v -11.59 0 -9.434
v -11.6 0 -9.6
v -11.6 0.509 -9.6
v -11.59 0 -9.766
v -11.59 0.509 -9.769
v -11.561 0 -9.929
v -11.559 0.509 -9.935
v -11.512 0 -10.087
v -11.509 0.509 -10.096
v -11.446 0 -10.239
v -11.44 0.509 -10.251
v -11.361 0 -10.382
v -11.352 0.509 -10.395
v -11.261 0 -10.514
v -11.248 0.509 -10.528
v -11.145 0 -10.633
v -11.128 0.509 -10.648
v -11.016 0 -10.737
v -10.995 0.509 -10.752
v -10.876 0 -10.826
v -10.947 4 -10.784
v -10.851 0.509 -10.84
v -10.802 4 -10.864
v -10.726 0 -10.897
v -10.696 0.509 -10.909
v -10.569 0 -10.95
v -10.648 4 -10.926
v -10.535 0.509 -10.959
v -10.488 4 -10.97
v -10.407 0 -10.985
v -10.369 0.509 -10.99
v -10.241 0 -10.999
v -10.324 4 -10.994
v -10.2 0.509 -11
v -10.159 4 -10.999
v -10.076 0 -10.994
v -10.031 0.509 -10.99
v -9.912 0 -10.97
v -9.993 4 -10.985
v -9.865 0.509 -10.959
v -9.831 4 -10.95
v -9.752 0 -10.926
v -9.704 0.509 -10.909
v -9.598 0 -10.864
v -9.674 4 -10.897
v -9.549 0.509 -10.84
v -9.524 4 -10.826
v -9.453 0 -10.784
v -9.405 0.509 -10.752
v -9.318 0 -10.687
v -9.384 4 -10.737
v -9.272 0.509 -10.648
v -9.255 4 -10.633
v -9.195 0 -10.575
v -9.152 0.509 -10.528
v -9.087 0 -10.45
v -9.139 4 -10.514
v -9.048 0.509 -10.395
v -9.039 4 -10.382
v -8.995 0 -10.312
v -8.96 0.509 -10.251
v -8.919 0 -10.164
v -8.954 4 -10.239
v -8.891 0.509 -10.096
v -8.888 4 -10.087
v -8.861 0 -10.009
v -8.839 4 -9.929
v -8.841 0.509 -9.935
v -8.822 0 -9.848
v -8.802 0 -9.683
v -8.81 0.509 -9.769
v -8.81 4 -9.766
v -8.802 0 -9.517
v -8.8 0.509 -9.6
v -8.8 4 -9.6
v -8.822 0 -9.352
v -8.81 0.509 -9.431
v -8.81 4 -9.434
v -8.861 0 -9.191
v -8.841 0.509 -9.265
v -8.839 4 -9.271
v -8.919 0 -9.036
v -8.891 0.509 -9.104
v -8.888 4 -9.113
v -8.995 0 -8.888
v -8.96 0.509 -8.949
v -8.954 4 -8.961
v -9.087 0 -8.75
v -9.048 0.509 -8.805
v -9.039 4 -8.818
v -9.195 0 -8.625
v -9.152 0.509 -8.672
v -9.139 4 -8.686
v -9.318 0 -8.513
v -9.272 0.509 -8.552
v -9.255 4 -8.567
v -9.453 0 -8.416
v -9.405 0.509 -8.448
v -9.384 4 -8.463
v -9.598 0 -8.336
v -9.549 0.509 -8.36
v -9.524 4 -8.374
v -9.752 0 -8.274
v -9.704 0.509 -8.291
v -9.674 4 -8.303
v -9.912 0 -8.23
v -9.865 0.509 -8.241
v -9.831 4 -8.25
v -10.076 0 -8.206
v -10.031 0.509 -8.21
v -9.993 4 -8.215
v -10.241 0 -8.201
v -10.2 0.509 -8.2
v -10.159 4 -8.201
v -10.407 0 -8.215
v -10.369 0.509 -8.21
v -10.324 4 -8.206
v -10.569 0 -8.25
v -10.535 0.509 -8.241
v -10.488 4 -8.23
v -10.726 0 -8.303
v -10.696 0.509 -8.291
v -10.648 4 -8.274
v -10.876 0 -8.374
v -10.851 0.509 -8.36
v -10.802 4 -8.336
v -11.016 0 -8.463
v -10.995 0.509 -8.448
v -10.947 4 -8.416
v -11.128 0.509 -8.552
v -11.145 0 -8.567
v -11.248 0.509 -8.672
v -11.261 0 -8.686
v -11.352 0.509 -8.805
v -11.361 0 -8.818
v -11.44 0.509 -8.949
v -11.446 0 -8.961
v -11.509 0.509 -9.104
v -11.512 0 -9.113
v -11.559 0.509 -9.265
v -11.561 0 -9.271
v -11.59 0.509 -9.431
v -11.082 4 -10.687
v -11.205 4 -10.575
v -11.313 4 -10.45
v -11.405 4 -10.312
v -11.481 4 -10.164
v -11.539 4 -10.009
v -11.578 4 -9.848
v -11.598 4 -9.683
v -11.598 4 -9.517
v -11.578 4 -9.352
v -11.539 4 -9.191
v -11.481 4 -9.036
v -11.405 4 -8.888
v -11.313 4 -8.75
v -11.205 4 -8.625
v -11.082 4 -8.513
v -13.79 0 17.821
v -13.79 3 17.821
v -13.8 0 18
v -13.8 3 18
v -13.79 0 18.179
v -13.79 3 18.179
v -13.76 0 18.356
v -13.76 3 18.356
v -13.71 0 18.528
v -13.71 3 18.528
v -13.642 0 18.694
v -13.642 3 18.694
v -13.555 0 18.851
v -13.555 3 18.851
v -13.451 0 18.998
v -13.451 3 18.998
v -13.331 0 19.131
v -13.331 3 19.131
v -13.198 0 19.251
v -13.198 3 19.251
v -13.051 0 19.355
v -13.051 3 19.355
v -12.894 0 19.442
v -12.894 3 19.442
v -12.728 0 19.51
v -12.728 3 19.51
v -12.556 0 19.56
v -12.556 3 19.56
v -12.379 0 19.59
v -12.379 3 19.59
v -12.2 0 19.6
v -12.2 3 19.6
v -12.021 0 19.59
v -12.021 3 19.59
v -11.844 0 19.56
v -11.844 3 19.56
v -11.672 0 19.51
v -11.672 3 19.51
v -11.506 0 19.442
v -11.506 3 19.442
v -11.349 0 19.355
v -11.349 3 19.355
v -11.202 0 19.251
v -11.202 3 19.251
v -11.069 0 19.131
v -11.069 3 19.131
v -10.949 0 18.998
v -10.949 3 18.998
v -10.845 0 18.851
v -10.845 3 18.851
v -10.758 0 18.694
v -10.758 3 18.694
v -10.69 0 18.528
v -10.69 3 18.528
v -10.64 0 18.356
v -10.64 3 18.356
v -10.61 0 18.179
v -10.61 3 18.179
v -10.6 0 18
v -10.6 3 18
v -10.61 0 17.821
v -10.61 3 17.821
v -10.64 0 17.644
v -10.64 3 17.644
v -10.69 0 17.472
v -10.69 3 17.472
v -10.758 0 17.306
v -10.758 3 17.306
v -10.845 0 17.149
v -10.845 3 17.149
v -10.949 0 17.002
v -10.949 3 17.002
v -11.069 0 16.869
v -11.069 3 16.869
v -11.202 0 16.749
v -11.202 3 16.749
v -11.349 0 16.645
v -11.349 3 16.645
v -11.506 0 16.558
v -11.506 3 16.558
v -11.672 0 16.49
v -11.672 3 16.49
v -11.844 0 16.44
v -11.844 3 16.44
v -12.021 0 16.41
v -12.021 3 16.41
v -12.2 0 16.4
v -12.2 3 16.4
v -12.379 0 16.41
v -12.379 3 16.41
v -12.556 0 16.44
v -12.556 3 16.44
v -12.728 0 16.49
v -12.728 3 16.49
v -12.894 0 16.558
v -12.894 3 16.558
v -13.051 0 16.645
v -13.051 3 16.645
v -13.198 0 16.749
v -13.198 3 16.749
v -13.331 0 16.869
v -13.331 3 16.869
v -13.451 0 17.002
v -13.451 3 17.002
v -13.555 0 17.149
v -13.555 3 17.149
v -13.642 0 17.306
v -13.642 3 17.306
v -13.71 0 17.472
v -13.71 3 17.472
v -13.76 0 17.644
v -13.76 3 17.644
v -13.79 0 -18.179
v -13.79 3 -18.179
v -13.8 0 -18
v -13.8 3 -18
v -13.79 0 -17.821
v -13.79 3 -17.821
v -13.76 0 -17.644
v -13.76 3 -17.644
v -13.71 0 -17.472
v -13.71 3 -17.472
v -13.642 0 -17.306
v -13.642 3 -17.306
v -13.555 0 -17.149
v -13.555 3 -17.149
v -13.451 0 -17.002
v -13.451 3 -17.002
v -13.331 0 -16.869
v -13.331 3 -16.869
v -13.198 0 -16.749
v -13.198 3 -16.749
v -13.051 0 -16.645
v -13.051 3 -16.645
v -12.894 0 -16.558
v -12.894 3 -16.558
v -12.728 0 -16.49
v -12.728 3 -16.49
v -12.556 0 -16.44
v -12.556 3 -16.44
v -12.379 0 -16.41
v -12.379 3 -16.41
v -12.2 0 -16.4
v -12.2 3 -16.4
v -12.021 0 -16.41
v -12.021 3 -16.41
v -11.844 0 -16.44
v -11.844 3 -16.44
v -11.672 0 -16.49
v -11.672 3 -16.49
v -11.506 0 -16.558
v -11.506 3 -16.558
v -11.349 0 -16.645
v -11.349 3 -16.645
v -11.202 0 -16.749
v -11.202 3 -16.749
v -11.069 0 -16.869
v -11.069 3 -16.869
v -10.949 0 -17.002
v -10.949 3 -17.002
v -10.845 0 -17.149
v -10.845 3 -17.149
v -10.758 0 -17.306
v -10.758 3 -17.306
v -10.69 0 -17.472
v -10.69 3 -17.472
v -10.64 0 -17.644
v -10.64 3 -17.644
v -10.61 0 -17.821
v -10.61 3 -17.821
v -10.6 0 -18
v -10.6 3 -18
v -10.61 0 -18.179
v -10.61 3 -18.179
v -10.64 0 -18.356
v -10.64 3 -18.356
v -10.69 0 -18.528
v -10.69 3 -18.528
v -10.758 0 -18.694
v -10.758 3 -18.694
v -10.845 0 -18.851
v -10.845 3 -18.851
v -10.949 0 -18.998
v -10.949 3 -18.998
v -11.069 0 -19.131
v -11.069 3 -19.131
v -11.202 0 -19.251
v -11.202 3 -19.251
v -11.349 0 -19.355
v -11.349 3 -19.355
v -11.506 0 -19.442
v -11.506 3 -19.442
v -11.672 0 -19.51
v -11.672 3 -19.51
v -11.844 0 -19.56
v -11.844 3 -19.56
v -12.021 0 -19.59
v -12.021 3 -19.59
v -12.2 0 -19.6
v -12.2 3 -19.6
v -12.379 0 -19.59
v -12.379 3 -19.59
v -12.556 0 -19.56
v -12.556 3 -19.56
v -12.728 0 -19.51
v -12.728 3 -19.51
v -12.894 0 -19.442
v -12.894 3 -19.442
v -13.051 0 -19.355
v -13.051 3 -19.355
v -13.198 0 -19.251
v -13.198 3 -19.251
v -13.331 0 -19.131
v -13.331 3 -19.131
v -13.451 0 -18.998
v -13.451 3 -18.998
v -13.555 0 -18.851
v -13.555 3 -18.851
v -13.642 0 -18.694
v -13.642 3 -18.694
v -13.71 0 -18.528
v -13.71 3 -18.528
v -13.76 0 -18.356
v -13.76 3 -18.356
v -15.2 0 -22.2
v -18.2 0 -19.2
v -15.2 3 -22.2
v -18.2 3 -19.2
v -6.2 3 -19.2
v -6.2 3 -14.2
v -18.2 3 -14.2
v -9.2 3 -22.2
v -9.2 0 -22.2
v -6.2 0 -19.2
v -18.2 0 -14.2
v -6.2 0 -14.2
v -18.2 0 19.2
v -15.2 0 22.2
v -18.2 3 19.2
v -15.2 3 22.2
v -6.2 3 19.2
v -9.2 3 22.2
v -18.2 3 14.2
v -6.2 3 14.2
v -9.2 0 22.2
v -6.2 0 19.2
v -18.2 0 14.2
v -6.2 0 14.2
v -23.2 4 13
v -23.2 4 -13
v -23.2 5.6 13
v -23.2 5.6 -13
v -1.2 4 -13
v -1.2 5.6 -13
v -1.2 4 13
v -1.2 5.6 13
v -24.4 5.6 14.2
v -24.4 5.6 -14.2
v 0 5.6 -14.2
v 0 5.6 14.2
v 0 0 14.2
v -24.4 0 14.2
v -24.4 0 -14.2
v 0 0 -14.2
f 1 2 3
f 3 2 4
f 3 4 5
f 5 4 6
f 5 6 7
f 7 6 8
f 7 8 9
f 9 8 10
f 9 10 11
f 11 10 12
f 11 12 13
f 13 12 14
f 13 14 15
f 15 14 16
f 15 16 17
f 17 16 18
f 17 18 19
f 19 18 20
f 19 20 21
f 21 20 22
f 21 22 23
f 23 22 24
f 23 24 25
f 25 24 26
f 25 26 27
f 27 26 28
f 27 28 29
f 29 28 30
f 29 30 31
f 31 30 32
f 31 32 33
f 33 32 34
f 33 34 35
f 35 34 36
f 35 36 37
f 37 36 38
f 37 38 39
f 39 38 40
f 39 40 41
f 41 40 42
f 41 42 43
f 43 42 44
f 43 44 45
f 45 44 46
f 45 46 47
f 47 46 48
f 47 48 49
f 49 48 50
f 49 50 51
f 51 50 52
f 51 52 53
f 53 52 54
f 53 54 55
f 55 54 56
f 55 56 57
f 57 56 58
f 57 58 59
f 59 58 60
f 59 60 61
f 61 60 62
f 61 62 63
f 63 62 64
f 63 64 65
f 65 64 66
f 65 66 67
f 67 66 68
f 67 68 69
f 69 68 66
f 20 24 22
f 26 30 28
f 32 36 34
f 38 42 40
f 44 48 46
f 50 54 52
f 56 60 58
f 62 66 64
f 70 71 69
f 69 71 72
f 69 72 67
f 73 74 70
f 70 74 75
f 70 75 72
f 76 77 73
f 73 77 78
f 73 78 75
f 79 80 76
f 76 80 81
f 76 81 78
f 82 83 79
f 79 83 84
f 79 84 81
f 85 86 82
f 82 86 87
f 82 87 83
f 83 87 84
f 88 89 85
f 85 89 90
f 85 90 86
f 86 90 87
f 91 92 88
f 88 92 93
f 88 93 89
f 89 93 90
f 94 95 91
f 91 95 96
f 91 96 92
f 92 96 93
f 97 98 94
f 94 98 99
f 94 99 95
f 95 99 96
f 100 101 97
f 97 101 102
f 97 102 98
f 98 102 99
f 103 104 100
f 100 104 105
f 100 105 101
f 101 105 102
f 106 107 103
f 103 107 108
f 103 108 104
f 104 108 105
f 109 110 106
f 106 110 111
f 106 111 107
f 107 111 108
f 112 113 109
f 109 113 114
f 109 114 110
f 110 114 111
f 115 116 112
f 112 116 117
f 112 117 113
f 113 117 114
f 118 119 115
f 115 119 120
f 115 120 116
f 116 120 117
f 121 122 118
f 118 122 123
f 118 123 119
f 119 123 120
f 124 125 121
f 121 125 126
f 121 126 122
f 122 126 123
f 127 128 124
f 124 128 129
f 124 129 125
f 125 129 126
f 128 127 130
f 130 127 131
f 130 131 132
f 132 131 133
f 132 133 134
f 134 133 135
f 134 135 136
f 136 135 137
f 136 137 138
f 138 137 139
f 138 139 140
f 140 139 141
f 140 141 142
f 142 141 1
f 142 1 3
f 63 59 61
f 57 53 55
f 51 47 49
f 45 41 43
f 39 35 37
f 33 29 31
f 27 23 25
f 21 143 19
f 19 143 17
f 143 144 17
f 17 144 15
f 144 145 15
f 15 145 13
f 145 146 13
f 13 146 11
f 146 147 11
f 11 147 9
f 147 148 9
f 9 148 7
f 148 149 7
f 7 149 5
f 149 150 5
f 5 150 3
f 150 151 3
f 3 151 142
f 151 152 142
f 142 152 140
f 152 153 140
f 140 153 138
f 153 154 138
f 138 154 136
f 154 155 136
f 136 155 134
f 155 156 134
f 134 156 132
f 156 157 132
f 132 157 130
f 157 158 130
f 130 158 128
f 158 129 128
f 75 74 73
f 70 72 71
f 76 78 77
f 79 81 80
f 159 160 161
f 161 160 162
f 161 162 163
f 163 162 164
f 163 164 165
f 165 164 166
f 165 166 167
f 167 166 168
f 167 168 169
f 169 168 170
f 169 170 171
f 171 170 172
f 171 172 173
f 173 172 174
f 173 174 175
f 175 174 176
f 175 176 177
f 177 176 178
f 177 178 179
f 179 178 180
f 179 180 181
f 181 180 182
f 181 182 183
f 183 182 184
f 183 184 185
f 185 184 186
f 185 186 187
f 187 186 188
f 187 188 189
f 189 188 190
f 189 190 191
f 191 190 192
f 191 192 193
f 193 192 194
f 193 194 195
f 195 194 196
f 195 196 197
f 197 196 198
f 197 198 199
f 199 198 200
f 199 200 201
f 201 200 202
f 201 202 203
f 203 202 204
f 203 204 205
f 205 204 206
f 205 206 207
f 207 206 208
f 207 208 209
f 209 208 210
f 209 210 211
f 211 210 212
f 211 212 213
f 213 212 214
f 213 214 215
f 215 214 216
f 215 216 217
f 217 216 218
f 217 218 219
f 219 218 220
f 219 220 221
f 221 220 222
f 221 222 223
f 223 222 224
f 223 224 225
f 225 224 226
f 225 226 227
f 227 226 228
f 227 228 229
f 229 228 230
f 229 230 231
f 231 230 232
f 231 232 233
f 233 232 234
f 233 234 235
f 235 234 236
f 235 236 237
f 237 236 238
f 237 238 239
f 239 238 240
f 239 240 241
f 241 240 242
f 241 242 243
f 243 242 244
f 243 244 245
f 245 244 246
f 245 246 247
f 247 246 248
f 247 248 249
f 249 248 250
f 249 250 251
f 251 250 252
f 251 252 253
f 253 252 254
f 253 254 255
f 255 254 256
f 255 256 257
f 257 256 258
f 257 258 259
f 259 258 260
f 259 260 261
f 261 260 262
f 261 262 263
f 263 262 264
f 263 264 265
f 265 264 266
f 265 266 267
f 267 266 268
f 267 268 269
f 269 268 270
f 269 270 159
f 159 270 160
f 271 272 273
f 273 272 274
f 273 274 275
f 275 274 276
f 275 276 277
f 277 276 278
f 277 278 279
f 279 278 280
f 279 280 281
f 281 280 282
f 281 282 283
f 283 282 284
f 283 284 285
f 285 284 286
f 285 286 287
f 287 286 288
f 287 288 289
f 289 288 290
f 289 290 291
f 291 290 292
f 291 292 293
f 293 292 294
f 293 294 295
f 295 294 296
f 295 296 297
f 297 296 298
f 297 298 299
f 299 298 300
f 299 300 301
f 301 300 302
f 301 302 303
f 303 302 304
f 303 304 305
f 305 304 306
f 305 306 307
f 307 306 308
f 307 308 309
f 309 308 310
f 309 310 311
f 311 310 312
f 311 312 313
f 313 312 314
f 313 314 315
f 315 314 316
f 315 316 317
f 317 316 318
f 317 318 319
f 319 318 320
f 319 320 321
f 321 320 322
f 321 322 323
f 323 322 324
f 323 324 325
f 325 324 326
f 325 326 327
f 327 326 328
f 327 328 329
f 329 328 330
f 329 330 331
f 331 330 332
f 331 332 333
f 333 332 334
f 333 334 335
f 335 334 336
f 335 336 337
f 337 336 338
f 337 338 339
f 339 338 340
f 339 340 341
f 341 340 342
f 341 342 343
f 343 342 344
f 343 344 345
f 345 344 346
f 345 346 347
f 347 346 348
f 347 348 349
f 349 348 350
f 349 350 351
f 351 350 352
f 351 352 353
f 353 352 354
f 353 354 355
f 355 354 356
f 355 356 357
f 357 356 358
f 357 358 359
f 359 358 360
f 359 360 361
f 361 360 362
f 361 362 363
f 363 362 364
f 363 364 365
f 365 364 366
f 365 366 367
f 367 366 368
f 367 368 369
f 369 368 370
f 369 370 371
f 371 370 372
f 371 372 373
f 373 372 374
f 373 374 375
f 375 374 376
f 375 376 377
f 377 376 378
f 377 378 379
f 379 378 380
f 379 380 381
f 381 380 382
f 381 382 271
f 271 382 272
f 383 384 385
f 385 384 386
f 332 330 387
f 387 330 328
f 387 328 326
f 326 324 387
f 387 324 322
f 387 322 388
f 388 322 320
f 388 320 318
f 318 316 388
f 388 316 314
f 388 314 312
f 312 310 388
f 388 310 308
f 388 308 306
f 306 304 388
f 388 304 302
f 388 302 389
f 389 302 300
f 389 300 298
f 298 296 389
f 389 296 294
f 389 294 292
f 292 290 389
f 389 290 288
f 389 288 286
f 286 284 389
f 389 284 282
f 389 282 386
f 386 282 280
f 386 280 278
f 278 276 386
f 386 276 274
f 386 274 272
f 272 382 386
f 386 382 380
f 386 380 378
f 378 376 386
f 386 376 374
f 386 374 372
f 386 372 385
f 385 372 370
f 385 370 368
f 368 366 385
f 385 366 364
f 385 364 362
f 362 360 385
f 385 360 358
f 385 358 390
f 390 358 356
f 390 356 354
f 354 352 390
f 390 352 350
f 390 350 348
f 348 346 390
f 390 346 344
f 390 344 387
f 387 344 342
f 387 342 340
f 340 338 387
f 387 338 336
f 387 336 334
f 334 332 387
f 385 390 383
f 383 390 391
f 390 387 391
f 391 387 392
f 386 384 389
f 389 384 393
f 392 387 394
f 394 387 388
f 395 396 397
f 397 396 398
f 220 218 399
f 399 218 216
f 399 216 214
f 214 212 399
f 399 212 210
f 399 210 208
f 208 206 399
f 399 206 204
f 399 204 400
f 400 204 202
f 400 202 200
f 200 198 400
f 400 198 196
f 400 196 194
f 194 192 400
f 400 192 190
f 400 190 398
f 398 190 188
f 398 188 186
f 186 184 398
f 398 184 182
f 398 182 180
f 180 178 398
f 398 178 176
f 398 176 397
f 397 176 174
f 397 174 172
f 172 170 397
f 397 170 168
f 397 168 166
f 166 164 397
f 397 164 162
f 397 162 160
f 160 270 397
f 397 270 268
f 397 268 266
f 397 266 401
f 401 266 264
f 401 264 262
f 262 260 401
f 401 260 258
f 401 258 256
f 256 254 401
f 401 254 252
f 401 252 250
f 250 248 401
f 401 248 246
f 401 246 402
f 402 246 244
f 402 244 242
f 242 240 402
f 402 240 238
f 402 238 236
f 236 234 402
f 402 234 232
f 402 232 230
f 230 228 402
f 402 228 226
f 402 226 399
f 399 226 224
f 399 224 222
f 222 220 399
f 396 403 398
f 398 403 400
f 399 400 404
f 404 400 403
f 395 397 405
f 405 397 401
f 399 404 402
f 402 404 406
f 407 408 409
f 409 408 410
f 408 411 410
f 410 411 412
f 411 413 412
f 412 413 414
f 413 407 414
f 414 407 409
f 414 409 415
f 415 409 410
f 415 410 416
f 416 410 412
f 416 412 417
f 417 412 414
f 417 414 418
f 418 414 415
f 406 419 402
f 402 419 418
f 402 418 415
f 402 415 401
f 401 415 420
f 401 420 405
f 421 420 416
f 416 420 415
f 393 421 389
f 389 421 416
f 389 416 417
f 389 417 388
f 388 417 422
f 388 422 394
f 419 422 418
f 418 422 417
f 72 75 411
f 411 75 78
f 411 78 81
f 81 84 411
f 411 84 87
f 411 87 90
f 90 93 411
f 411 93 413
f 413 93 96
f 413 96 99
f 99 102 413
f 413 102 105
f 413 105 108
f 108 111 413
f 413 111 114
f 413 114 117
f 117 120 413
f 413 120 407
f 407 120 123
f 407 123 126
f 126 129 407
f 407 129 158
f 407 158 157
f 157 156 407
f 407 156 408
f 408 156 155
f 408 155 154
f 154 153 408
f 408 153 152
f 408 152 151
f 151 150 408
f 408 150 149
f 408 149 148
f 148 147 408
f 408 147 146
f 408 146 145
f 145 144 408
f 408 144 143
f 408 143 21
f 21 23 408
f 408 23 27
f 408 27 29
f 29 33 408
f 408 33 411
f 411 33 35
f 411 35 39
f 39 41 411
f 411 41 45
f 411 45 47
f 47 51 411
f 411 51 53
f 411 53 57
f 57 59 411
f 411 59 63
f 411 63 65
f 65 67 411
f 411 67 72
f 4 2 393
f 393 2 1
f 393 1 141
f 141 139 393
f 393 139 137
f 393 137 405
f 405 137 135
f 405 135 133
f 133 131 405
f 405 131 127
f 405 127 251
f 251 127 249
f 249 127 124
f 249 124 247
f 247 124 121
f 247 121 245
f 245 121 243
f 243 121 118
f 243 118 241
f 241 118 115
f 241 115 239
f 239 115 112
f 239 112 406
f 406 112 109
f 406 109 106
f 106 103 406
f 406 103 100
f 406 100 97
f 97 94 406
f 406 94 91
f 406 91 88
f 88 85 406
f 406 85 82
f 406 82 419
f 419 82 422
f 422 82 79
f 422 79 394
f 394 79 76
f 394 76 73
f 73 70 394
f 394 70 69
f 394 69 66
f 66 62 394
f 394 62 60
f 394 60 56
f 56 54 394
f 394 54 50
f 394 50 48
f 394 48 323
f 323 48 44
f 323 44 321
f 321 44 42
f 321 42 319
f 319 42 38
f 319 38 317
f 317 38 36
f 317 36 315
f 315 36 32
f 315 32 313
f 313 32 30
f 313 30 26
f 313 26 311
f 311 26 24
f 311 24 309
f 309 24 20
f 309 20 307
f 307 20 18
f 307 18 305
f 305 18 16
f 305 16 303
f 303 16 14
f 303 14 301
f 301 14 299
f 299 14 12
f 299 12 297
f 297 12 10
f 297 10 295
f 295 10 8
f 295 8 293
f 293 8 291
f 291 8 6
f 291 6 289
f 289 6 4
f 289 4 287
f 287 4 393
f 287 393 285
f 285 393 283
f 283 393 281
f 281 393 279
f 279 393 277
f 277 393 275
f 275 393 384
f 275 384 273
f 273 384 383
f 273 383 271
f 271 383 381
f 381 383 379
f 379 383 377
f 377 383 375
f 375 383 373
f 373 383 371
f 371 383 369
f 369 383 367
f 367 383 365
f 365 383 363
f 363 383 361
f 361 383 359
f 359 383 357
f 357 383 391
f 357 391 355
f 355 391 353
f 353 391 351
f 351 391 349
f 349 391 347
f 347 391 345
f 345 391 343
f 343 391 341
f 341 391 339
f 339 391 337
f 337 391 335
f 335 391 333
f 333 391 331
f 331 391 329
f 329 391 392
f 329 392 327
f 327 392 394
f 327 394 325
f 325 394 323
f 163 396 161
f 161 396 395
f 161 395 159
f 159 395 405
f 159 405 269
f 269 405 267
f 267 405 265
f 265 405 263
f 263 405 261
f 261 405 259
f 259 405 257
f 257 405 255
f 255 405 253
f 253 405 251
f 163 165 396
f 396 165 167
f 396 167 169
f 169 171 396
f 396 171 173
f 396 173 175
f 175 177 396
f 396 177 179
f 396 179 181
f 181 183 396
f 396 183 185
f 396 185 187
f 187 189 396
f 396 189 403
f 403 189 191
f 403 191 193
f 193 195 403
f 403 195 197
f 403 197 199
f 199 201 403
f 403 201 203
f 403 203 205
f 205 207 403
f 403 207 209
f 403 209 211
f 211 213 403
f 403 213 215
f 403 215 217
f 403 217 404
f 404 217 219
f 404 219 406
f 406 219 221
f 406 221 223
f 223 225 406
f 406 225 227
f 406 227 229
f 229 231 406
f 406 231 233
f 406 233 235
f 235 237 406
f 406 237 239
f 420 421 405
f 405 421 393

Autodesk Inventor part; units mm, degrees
ref_plane "YZ Plane" through (0, 0, 0) normal (1, 0, 0) x (0, 1, 0)
ref_plane "XZ Plane" through (0, 0, 0) normal (0, 1, 0) x (-1, 0, 0)
ref_plane "XY Plane" through (0, 0, 0) normal (0, 0, 1) x (1, 0, 0)
sketch "Эскиз1" plane through (0, 0, 0) normal (0, 1, 0) x (-1, 0, 0)
  line L0 (0, 14.2) -> (24.4, 14.2)
  line L1 (24.4, 14.2) -> (24.4, -14.2)
  line L2 (24.4, -14.2) -> (0, -14.2)
  line L3 (0, -14.2) -> (0, 0)
  line L4 (0, 0) -> (0, 14.2)
  point P0 (24.4, 0)
  dimension "d0" = 24.4
  dimension "d1" = 28.4
extrude "Выдавливание1" add sketch "Эскиз1" along normal blind 4
sketch "Эскиз2" plane through (0, 4, 0) normal (0, 1, 0) x (1, 0, 0)
  line L0 (-23.2, -13) -> (-1.2, -13)
  line L1 (-1.2, -13) -> (-1.2, 13)
  line L2 (-1.2, 13) -> (-23.2, 13)
  line L3 (-23.2, 13) -> (-23.2, -13)
  line L4 (0, 14.2) -> (-24.4, 14.2) projected
  line L5 (-24.4, 14.2) -> (-24.4, -14.2) projected
  line L6 (-24.4, -14.2) -> (0, -14.2) projected
  line L7 (0, -14.2) -> (0, 14.2) projected
  line L8 (0, 14.2) -> (-24.4, 14.2) projected
  line L9 (-24.4, 14.2) -> (-24.4, -14.2) projected
  point P0 (0, 0)
  point P1 (-12.2, 13)
  point P2 (-12.2, 14.2)
  point P3 (-23.2, 0)
  point P4 (-24.4, 0)
  dimension "d4" = 26
  dimension "d5" = 22
extrude "Выдавливание2" add sketch "Эскиз2" along normal blind 1.6
sketch "Эскиз4" plane through (-24.4, 0, 14.2) normal (0, 0, 1) x (1, 0, 0)
  line L0 (6.2, 0) -> (18.2, 0)
  line L1 (18.2, 0) -> (18.2, 3)
  line L2 (18.2, 3) -> (6.2, 3)
  line L3 (6.2, 3) -> (6.2, 0)
  line L4 (0, 0) -> (24.4, 0) projected
  point P0 (12.2, 0)
  dimension "d8" = 3
  dimension "d9" = 12
extrude "Выдавливание3" add sketch "Эскиз4" along normal blind 8
chamfer "Фаска1" distance 3 angle 45 2 edges at (-6.2, 1.5, 22.2) (-18.2, 1.5, 22.2)
mirror "Зеркальное отражение1" about plane through (0, 0, 0) normal (0, 0, 1) of "Выдавливание3", "Фаска1"
sketch "Эскиз6" plane through (-18.2, 3, 14.2) normal (0, 1, 0) x (1, 0, 0)
  line L0 (9, 36.4) -> (3, 36.4) projected
  line L1 (-5, 27.2) -> (-5, 1.2) projected
  line L2 (-5, 14.2) -> (17, 14.2)
  line L3 (17, 1.2) -> (17, 27.2) projected
  point P0 (18.2, 14.2)
  point P1 (6, -3.8)
  point P2 (6, 32.2)
  point P3 (6, 36.4)
  dimension "d23" = 36
hole "Отверстие1" at (-12.2, 3, 18) at (-12.2, 3, -18) direction (0, -1, 0) diameter 3.2 end through all
sketch "Эскиз7" plane through (0, 4, 0) normal (0, 1, 0) x (1, 0, 0)
  line L0 (-23.2, 13) -> (-1.2, 13) projected
  line L1 (-23.2, -13) -> (-23.2, 13) projected
  line L2 (-1.2, 13) -> (-1.2, -13) projected
  point P0 (0, 0)
  point P1 (-10.2, 9.6)
  dimension "d31" = 3.4
  dimension "d33" = 9
hole "Отверстие2" at (-10.2, 4, -9.6) direction (0, -1, 0) diameter 2.8 end through all
properties part number "driver"
